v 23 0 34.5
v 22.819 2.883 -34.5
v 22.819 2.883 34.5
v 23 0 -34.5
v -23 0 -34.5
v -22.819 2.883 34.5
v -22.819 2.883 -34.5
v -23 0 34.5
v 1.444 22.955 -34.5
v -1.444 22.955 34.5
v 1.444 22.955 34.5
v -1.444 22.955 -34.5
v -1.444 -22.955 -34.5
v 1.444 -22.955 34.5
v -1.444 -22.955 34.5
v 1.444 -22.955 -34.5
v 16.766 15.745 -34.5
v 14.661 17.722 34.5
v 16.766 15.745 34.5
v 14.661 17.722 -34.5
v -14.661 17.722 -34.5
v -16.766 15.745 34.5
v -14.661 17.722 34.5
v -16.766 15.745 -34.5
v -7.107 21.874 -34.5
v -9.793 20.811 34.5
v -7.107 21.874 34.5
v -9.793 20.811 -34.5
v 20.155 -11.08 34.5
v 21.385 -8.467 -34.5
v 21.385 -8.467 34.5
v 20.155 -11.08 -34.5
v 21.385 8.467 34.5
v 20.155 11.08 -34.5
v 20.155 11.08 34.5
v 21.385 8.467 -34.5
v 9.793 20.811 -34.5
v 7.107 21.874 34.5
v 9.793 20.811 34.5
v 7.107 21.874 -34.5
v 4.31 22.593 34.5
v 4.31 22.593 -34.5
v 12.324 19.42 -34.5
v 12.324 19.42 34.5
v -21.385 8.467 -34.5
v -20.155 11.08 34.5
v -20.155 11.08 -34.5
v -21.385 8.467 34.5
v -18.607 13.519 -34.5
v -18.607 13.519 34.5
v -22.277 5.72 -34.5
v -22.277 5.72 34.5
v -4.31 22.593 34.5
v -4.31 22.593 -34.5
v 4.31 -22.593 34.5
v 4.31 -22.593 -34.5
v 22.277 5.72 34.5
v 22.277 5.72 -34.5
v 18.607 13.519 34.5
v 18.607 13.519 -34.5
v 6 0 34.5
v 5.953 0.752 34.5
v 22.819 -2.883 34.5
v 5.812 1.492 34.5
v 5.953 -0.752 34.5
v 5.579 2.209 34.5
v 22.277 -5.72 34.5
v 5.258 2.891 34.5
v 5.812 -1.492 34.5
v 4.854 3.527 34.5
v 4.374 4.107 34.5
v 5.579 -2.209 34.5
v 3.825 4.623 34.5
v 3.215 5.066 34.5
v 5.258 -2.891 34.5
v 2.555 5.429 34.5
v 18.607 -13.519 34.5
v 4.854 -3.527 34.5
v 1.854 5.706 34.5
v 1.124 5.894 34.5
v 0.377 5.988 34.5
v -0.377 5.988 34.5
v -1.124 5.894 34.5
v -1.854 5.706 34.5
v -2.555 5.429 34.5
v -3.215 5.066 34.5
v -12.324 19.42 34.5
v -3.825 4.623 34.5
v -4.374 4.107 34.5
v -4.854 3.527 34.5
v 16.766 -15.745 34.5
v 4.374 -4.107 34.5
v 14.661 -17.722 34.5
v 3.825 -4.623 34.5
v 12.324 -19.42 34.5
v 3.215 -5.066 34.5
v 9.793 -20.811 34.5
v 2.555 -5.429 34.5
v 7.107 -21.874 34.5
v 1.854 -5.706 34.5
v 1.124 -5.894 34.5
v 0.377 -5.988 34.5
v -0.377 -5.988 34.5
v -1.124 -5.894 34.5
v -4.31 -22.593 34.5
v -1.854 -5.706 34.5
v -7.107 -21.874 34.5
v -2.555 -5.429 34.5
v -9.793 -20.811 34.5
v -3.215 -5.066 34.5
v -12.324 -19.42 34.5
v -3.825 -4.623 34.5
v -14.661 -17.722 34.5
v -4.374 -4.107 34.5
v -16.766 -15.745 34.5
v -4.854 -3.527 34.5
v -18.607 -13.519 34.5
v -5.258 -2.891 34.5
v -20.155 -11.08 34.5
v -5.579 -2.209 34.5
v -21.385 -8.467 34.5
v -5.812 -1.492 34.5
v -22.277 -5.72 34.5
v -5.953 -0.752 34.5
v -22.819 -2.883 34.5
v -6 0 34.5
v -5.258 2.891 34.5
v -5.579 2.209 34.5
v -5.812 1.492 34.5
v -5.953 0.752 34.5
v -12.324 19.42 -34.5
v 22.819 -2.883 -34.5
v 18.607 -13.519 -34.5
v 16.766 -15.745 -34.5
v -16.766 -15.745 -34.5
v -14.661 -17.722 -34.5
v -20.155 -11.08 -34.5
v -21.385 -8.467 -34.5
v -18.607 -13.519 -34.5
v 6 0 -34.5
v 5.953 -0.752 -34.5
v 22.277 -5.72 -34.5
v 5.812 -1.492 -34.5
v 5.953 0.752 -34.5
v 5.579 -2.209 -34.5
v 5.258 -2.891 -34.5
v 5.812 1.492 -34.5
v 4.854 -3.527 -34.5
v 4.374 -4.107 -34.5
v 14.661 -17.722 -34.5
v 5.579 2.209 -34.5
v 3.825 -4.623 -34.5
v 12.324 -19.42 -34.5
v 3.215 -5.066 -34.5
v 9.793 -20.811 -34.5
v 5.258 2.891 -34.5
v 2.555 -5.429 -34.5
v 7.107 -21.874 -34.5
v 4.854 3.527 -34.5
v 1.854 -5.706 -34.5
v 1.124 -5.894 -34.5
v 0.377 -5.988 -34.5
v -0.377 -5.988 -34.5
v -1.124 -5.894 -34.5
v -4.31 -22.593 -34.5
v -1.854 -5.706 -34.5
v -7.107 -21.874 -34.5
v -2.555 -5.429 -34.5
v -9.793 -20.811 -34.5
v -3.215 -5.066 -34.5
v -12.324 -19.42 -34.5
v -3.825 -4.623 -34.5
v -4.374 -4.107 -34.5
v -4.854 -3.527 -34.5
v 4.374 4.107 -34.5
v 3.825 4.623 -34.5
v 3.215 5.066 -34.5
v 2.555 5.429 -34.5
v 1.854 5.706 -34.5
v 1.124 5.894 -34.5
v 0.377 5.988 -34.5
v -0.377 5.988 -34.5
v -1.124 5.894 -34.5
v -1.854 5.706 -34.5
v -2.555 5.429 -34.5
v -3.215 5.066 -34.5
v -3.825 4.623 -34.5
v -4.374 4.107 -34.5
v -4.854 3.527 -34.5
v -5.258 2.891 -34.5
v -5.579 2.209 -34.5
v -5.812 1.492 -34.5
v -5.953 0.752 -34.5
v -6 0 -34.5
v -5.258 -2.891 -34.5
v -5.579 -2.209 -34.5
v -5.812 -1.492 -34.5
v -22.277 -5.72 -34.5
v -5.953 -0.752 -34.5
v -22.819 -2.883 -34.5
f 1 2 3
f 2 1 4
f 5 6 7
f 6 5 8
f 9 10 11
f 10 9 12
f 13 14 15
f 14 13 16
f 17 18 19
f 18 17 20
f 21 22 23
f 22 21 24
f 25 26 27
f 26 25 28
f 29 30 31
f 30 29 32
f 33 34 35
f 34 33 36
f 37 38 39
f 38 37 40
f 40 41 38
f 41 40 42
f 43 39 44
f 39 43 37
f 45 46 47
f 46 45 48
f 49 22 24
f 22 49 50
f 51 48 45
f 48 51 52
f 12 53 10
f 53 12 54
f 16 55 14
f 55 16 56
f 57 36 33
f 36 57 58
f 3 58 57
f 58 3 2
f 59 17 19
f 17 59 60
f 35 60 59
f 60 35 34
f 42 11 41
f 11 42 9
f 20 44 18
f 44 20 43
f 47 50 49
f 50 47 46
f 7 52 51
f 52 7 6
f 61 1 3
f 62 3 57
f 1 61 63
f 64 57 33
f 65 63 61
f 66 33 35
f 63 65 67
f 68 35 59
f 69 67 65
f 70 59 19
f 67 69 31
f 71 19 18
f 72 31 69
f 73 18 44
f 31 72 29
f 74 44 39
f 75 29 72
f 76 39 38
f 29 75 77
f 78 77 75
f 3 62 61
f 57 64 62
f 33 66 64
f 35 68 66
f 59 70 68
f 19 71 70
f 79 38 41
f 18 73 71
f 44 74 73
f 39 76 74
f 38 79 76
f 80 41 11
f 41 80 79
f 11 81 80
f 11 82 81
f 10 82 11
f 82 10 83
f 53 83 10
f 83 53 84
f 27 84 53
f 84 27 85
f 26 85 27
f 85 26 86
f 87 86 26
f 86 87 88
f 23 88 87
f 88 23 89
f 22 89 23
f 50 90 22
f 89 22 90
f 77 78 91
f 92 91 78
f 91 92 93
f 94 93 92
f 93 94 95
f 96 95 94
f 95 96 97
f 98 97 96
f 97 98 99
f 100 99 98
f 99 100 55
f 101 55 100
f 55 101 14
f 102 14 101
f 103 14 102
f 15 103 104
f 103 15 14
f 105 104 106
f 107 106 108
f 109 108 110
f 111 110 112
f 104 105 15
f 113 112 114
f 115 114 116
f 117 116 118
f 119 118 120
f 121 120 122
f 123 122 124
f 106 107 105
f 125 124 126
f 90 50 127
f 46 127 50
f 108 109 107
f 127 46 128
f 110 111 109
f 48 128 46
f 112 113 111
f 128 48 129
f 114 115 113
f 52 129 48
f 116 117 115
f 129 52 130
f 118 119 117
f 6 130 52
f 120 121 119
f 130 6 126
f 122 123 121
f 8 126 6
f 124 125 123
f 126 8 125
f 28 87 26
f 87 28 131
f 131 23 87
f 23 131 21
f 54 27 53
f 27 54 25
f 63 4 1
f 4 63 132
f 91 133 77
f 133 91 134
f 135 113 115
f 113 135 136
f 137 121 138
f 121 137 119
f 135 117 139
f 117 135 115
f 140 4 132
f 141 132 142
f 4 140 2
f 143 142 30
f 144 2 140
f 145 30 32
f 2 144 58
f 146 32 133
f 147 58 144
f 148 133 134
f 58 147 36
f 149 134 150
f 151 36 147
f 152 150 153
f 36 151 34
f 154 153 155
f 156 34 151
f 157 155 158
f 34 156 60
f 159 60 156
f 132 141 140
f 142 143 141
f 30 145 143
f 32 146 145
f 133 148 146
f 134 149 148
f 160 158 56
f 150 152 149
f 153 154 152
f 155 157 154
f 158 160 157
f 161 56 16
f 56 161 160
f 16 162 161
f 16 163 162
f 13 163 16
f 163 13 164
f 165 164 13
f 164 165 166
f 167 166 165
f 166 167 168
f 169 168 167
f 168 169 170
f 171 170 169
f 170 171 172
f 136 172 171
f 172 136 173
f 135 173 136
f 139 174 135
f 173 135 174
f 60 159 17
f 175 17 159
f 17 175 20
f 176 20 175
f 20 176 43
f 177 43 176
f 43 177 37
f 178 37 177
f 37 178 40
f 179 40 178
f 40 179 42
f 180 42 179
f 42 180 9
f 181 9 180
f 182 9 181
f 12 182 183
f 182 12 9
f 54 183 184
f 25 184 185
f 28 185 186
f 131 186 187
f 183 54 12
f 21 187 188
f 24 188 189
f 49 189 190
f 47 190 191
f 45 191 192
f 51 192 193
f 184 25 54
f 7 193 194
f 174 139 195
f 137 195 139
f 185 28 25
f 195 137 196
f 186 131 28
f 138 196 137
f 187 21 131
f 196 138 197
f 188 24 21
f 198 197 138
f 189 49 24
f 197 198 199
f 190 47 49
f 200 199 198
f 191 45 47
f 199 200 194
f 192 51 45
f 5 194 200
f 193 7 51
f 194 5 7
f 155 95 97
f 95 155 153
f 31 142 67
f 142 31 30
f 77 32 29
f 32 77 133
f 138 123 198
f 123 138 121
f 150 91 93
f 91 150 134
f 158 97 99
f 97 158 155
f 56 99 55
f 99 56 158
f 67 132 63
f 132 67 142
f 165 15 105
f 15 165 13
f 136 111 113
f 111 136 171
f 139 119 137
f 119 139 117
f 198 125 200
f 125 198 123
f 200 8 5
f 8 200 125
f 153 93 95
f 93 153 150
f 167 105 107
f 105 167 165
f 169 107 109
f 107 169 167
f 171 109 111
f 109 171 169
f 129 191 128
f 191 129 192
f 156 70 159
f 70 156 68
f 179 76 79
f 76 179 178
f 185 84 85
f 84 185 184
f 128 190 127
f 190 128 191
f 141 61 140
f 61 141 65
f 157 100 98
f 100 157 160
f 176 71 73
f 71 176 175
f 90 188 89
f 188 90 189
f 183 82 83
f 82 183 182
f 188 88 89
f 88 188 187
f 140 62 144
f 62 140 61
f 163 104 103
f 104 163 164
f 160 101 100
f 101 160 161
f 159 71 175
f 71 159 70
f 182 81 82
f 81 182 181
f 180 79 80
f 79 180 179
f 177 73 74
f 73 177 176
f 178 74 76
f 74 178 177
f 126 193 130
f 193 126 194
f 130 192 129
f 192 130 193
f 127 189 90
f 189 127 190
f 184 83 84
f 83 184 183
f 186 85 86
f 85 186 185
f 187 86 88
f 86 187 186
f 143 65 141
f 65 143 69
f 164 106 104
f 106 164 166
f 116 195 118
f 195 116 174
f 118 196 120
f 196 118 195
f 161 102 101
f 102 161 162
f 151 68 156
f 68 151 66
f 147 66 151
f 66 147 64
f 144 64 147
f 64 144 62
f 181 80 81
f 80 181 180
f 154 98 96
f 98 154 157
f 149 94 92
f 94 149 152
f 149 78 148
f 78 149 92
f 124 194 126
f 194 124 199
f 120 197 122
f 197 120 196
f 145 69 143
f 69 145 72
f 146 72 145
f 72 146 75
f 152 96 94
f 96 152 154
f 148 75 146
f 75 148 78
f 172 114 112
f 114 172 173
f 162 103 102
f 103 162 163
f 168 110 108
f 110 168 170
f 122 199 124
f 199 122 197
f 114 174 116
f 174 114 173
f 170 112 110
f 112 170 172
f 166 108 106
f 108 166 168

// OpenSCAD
$fn = 50;


difference() {
	union() {
		translate(v = [0, 0, -34.5000000000]) {
			cylinder(h = 69, r = 23.0000000000);
		}
	}
	union() {
		translate(v = [0, 0, -100.0000000000]) {
			cylinder(h = 200, r = 6);
		}
	}
}
